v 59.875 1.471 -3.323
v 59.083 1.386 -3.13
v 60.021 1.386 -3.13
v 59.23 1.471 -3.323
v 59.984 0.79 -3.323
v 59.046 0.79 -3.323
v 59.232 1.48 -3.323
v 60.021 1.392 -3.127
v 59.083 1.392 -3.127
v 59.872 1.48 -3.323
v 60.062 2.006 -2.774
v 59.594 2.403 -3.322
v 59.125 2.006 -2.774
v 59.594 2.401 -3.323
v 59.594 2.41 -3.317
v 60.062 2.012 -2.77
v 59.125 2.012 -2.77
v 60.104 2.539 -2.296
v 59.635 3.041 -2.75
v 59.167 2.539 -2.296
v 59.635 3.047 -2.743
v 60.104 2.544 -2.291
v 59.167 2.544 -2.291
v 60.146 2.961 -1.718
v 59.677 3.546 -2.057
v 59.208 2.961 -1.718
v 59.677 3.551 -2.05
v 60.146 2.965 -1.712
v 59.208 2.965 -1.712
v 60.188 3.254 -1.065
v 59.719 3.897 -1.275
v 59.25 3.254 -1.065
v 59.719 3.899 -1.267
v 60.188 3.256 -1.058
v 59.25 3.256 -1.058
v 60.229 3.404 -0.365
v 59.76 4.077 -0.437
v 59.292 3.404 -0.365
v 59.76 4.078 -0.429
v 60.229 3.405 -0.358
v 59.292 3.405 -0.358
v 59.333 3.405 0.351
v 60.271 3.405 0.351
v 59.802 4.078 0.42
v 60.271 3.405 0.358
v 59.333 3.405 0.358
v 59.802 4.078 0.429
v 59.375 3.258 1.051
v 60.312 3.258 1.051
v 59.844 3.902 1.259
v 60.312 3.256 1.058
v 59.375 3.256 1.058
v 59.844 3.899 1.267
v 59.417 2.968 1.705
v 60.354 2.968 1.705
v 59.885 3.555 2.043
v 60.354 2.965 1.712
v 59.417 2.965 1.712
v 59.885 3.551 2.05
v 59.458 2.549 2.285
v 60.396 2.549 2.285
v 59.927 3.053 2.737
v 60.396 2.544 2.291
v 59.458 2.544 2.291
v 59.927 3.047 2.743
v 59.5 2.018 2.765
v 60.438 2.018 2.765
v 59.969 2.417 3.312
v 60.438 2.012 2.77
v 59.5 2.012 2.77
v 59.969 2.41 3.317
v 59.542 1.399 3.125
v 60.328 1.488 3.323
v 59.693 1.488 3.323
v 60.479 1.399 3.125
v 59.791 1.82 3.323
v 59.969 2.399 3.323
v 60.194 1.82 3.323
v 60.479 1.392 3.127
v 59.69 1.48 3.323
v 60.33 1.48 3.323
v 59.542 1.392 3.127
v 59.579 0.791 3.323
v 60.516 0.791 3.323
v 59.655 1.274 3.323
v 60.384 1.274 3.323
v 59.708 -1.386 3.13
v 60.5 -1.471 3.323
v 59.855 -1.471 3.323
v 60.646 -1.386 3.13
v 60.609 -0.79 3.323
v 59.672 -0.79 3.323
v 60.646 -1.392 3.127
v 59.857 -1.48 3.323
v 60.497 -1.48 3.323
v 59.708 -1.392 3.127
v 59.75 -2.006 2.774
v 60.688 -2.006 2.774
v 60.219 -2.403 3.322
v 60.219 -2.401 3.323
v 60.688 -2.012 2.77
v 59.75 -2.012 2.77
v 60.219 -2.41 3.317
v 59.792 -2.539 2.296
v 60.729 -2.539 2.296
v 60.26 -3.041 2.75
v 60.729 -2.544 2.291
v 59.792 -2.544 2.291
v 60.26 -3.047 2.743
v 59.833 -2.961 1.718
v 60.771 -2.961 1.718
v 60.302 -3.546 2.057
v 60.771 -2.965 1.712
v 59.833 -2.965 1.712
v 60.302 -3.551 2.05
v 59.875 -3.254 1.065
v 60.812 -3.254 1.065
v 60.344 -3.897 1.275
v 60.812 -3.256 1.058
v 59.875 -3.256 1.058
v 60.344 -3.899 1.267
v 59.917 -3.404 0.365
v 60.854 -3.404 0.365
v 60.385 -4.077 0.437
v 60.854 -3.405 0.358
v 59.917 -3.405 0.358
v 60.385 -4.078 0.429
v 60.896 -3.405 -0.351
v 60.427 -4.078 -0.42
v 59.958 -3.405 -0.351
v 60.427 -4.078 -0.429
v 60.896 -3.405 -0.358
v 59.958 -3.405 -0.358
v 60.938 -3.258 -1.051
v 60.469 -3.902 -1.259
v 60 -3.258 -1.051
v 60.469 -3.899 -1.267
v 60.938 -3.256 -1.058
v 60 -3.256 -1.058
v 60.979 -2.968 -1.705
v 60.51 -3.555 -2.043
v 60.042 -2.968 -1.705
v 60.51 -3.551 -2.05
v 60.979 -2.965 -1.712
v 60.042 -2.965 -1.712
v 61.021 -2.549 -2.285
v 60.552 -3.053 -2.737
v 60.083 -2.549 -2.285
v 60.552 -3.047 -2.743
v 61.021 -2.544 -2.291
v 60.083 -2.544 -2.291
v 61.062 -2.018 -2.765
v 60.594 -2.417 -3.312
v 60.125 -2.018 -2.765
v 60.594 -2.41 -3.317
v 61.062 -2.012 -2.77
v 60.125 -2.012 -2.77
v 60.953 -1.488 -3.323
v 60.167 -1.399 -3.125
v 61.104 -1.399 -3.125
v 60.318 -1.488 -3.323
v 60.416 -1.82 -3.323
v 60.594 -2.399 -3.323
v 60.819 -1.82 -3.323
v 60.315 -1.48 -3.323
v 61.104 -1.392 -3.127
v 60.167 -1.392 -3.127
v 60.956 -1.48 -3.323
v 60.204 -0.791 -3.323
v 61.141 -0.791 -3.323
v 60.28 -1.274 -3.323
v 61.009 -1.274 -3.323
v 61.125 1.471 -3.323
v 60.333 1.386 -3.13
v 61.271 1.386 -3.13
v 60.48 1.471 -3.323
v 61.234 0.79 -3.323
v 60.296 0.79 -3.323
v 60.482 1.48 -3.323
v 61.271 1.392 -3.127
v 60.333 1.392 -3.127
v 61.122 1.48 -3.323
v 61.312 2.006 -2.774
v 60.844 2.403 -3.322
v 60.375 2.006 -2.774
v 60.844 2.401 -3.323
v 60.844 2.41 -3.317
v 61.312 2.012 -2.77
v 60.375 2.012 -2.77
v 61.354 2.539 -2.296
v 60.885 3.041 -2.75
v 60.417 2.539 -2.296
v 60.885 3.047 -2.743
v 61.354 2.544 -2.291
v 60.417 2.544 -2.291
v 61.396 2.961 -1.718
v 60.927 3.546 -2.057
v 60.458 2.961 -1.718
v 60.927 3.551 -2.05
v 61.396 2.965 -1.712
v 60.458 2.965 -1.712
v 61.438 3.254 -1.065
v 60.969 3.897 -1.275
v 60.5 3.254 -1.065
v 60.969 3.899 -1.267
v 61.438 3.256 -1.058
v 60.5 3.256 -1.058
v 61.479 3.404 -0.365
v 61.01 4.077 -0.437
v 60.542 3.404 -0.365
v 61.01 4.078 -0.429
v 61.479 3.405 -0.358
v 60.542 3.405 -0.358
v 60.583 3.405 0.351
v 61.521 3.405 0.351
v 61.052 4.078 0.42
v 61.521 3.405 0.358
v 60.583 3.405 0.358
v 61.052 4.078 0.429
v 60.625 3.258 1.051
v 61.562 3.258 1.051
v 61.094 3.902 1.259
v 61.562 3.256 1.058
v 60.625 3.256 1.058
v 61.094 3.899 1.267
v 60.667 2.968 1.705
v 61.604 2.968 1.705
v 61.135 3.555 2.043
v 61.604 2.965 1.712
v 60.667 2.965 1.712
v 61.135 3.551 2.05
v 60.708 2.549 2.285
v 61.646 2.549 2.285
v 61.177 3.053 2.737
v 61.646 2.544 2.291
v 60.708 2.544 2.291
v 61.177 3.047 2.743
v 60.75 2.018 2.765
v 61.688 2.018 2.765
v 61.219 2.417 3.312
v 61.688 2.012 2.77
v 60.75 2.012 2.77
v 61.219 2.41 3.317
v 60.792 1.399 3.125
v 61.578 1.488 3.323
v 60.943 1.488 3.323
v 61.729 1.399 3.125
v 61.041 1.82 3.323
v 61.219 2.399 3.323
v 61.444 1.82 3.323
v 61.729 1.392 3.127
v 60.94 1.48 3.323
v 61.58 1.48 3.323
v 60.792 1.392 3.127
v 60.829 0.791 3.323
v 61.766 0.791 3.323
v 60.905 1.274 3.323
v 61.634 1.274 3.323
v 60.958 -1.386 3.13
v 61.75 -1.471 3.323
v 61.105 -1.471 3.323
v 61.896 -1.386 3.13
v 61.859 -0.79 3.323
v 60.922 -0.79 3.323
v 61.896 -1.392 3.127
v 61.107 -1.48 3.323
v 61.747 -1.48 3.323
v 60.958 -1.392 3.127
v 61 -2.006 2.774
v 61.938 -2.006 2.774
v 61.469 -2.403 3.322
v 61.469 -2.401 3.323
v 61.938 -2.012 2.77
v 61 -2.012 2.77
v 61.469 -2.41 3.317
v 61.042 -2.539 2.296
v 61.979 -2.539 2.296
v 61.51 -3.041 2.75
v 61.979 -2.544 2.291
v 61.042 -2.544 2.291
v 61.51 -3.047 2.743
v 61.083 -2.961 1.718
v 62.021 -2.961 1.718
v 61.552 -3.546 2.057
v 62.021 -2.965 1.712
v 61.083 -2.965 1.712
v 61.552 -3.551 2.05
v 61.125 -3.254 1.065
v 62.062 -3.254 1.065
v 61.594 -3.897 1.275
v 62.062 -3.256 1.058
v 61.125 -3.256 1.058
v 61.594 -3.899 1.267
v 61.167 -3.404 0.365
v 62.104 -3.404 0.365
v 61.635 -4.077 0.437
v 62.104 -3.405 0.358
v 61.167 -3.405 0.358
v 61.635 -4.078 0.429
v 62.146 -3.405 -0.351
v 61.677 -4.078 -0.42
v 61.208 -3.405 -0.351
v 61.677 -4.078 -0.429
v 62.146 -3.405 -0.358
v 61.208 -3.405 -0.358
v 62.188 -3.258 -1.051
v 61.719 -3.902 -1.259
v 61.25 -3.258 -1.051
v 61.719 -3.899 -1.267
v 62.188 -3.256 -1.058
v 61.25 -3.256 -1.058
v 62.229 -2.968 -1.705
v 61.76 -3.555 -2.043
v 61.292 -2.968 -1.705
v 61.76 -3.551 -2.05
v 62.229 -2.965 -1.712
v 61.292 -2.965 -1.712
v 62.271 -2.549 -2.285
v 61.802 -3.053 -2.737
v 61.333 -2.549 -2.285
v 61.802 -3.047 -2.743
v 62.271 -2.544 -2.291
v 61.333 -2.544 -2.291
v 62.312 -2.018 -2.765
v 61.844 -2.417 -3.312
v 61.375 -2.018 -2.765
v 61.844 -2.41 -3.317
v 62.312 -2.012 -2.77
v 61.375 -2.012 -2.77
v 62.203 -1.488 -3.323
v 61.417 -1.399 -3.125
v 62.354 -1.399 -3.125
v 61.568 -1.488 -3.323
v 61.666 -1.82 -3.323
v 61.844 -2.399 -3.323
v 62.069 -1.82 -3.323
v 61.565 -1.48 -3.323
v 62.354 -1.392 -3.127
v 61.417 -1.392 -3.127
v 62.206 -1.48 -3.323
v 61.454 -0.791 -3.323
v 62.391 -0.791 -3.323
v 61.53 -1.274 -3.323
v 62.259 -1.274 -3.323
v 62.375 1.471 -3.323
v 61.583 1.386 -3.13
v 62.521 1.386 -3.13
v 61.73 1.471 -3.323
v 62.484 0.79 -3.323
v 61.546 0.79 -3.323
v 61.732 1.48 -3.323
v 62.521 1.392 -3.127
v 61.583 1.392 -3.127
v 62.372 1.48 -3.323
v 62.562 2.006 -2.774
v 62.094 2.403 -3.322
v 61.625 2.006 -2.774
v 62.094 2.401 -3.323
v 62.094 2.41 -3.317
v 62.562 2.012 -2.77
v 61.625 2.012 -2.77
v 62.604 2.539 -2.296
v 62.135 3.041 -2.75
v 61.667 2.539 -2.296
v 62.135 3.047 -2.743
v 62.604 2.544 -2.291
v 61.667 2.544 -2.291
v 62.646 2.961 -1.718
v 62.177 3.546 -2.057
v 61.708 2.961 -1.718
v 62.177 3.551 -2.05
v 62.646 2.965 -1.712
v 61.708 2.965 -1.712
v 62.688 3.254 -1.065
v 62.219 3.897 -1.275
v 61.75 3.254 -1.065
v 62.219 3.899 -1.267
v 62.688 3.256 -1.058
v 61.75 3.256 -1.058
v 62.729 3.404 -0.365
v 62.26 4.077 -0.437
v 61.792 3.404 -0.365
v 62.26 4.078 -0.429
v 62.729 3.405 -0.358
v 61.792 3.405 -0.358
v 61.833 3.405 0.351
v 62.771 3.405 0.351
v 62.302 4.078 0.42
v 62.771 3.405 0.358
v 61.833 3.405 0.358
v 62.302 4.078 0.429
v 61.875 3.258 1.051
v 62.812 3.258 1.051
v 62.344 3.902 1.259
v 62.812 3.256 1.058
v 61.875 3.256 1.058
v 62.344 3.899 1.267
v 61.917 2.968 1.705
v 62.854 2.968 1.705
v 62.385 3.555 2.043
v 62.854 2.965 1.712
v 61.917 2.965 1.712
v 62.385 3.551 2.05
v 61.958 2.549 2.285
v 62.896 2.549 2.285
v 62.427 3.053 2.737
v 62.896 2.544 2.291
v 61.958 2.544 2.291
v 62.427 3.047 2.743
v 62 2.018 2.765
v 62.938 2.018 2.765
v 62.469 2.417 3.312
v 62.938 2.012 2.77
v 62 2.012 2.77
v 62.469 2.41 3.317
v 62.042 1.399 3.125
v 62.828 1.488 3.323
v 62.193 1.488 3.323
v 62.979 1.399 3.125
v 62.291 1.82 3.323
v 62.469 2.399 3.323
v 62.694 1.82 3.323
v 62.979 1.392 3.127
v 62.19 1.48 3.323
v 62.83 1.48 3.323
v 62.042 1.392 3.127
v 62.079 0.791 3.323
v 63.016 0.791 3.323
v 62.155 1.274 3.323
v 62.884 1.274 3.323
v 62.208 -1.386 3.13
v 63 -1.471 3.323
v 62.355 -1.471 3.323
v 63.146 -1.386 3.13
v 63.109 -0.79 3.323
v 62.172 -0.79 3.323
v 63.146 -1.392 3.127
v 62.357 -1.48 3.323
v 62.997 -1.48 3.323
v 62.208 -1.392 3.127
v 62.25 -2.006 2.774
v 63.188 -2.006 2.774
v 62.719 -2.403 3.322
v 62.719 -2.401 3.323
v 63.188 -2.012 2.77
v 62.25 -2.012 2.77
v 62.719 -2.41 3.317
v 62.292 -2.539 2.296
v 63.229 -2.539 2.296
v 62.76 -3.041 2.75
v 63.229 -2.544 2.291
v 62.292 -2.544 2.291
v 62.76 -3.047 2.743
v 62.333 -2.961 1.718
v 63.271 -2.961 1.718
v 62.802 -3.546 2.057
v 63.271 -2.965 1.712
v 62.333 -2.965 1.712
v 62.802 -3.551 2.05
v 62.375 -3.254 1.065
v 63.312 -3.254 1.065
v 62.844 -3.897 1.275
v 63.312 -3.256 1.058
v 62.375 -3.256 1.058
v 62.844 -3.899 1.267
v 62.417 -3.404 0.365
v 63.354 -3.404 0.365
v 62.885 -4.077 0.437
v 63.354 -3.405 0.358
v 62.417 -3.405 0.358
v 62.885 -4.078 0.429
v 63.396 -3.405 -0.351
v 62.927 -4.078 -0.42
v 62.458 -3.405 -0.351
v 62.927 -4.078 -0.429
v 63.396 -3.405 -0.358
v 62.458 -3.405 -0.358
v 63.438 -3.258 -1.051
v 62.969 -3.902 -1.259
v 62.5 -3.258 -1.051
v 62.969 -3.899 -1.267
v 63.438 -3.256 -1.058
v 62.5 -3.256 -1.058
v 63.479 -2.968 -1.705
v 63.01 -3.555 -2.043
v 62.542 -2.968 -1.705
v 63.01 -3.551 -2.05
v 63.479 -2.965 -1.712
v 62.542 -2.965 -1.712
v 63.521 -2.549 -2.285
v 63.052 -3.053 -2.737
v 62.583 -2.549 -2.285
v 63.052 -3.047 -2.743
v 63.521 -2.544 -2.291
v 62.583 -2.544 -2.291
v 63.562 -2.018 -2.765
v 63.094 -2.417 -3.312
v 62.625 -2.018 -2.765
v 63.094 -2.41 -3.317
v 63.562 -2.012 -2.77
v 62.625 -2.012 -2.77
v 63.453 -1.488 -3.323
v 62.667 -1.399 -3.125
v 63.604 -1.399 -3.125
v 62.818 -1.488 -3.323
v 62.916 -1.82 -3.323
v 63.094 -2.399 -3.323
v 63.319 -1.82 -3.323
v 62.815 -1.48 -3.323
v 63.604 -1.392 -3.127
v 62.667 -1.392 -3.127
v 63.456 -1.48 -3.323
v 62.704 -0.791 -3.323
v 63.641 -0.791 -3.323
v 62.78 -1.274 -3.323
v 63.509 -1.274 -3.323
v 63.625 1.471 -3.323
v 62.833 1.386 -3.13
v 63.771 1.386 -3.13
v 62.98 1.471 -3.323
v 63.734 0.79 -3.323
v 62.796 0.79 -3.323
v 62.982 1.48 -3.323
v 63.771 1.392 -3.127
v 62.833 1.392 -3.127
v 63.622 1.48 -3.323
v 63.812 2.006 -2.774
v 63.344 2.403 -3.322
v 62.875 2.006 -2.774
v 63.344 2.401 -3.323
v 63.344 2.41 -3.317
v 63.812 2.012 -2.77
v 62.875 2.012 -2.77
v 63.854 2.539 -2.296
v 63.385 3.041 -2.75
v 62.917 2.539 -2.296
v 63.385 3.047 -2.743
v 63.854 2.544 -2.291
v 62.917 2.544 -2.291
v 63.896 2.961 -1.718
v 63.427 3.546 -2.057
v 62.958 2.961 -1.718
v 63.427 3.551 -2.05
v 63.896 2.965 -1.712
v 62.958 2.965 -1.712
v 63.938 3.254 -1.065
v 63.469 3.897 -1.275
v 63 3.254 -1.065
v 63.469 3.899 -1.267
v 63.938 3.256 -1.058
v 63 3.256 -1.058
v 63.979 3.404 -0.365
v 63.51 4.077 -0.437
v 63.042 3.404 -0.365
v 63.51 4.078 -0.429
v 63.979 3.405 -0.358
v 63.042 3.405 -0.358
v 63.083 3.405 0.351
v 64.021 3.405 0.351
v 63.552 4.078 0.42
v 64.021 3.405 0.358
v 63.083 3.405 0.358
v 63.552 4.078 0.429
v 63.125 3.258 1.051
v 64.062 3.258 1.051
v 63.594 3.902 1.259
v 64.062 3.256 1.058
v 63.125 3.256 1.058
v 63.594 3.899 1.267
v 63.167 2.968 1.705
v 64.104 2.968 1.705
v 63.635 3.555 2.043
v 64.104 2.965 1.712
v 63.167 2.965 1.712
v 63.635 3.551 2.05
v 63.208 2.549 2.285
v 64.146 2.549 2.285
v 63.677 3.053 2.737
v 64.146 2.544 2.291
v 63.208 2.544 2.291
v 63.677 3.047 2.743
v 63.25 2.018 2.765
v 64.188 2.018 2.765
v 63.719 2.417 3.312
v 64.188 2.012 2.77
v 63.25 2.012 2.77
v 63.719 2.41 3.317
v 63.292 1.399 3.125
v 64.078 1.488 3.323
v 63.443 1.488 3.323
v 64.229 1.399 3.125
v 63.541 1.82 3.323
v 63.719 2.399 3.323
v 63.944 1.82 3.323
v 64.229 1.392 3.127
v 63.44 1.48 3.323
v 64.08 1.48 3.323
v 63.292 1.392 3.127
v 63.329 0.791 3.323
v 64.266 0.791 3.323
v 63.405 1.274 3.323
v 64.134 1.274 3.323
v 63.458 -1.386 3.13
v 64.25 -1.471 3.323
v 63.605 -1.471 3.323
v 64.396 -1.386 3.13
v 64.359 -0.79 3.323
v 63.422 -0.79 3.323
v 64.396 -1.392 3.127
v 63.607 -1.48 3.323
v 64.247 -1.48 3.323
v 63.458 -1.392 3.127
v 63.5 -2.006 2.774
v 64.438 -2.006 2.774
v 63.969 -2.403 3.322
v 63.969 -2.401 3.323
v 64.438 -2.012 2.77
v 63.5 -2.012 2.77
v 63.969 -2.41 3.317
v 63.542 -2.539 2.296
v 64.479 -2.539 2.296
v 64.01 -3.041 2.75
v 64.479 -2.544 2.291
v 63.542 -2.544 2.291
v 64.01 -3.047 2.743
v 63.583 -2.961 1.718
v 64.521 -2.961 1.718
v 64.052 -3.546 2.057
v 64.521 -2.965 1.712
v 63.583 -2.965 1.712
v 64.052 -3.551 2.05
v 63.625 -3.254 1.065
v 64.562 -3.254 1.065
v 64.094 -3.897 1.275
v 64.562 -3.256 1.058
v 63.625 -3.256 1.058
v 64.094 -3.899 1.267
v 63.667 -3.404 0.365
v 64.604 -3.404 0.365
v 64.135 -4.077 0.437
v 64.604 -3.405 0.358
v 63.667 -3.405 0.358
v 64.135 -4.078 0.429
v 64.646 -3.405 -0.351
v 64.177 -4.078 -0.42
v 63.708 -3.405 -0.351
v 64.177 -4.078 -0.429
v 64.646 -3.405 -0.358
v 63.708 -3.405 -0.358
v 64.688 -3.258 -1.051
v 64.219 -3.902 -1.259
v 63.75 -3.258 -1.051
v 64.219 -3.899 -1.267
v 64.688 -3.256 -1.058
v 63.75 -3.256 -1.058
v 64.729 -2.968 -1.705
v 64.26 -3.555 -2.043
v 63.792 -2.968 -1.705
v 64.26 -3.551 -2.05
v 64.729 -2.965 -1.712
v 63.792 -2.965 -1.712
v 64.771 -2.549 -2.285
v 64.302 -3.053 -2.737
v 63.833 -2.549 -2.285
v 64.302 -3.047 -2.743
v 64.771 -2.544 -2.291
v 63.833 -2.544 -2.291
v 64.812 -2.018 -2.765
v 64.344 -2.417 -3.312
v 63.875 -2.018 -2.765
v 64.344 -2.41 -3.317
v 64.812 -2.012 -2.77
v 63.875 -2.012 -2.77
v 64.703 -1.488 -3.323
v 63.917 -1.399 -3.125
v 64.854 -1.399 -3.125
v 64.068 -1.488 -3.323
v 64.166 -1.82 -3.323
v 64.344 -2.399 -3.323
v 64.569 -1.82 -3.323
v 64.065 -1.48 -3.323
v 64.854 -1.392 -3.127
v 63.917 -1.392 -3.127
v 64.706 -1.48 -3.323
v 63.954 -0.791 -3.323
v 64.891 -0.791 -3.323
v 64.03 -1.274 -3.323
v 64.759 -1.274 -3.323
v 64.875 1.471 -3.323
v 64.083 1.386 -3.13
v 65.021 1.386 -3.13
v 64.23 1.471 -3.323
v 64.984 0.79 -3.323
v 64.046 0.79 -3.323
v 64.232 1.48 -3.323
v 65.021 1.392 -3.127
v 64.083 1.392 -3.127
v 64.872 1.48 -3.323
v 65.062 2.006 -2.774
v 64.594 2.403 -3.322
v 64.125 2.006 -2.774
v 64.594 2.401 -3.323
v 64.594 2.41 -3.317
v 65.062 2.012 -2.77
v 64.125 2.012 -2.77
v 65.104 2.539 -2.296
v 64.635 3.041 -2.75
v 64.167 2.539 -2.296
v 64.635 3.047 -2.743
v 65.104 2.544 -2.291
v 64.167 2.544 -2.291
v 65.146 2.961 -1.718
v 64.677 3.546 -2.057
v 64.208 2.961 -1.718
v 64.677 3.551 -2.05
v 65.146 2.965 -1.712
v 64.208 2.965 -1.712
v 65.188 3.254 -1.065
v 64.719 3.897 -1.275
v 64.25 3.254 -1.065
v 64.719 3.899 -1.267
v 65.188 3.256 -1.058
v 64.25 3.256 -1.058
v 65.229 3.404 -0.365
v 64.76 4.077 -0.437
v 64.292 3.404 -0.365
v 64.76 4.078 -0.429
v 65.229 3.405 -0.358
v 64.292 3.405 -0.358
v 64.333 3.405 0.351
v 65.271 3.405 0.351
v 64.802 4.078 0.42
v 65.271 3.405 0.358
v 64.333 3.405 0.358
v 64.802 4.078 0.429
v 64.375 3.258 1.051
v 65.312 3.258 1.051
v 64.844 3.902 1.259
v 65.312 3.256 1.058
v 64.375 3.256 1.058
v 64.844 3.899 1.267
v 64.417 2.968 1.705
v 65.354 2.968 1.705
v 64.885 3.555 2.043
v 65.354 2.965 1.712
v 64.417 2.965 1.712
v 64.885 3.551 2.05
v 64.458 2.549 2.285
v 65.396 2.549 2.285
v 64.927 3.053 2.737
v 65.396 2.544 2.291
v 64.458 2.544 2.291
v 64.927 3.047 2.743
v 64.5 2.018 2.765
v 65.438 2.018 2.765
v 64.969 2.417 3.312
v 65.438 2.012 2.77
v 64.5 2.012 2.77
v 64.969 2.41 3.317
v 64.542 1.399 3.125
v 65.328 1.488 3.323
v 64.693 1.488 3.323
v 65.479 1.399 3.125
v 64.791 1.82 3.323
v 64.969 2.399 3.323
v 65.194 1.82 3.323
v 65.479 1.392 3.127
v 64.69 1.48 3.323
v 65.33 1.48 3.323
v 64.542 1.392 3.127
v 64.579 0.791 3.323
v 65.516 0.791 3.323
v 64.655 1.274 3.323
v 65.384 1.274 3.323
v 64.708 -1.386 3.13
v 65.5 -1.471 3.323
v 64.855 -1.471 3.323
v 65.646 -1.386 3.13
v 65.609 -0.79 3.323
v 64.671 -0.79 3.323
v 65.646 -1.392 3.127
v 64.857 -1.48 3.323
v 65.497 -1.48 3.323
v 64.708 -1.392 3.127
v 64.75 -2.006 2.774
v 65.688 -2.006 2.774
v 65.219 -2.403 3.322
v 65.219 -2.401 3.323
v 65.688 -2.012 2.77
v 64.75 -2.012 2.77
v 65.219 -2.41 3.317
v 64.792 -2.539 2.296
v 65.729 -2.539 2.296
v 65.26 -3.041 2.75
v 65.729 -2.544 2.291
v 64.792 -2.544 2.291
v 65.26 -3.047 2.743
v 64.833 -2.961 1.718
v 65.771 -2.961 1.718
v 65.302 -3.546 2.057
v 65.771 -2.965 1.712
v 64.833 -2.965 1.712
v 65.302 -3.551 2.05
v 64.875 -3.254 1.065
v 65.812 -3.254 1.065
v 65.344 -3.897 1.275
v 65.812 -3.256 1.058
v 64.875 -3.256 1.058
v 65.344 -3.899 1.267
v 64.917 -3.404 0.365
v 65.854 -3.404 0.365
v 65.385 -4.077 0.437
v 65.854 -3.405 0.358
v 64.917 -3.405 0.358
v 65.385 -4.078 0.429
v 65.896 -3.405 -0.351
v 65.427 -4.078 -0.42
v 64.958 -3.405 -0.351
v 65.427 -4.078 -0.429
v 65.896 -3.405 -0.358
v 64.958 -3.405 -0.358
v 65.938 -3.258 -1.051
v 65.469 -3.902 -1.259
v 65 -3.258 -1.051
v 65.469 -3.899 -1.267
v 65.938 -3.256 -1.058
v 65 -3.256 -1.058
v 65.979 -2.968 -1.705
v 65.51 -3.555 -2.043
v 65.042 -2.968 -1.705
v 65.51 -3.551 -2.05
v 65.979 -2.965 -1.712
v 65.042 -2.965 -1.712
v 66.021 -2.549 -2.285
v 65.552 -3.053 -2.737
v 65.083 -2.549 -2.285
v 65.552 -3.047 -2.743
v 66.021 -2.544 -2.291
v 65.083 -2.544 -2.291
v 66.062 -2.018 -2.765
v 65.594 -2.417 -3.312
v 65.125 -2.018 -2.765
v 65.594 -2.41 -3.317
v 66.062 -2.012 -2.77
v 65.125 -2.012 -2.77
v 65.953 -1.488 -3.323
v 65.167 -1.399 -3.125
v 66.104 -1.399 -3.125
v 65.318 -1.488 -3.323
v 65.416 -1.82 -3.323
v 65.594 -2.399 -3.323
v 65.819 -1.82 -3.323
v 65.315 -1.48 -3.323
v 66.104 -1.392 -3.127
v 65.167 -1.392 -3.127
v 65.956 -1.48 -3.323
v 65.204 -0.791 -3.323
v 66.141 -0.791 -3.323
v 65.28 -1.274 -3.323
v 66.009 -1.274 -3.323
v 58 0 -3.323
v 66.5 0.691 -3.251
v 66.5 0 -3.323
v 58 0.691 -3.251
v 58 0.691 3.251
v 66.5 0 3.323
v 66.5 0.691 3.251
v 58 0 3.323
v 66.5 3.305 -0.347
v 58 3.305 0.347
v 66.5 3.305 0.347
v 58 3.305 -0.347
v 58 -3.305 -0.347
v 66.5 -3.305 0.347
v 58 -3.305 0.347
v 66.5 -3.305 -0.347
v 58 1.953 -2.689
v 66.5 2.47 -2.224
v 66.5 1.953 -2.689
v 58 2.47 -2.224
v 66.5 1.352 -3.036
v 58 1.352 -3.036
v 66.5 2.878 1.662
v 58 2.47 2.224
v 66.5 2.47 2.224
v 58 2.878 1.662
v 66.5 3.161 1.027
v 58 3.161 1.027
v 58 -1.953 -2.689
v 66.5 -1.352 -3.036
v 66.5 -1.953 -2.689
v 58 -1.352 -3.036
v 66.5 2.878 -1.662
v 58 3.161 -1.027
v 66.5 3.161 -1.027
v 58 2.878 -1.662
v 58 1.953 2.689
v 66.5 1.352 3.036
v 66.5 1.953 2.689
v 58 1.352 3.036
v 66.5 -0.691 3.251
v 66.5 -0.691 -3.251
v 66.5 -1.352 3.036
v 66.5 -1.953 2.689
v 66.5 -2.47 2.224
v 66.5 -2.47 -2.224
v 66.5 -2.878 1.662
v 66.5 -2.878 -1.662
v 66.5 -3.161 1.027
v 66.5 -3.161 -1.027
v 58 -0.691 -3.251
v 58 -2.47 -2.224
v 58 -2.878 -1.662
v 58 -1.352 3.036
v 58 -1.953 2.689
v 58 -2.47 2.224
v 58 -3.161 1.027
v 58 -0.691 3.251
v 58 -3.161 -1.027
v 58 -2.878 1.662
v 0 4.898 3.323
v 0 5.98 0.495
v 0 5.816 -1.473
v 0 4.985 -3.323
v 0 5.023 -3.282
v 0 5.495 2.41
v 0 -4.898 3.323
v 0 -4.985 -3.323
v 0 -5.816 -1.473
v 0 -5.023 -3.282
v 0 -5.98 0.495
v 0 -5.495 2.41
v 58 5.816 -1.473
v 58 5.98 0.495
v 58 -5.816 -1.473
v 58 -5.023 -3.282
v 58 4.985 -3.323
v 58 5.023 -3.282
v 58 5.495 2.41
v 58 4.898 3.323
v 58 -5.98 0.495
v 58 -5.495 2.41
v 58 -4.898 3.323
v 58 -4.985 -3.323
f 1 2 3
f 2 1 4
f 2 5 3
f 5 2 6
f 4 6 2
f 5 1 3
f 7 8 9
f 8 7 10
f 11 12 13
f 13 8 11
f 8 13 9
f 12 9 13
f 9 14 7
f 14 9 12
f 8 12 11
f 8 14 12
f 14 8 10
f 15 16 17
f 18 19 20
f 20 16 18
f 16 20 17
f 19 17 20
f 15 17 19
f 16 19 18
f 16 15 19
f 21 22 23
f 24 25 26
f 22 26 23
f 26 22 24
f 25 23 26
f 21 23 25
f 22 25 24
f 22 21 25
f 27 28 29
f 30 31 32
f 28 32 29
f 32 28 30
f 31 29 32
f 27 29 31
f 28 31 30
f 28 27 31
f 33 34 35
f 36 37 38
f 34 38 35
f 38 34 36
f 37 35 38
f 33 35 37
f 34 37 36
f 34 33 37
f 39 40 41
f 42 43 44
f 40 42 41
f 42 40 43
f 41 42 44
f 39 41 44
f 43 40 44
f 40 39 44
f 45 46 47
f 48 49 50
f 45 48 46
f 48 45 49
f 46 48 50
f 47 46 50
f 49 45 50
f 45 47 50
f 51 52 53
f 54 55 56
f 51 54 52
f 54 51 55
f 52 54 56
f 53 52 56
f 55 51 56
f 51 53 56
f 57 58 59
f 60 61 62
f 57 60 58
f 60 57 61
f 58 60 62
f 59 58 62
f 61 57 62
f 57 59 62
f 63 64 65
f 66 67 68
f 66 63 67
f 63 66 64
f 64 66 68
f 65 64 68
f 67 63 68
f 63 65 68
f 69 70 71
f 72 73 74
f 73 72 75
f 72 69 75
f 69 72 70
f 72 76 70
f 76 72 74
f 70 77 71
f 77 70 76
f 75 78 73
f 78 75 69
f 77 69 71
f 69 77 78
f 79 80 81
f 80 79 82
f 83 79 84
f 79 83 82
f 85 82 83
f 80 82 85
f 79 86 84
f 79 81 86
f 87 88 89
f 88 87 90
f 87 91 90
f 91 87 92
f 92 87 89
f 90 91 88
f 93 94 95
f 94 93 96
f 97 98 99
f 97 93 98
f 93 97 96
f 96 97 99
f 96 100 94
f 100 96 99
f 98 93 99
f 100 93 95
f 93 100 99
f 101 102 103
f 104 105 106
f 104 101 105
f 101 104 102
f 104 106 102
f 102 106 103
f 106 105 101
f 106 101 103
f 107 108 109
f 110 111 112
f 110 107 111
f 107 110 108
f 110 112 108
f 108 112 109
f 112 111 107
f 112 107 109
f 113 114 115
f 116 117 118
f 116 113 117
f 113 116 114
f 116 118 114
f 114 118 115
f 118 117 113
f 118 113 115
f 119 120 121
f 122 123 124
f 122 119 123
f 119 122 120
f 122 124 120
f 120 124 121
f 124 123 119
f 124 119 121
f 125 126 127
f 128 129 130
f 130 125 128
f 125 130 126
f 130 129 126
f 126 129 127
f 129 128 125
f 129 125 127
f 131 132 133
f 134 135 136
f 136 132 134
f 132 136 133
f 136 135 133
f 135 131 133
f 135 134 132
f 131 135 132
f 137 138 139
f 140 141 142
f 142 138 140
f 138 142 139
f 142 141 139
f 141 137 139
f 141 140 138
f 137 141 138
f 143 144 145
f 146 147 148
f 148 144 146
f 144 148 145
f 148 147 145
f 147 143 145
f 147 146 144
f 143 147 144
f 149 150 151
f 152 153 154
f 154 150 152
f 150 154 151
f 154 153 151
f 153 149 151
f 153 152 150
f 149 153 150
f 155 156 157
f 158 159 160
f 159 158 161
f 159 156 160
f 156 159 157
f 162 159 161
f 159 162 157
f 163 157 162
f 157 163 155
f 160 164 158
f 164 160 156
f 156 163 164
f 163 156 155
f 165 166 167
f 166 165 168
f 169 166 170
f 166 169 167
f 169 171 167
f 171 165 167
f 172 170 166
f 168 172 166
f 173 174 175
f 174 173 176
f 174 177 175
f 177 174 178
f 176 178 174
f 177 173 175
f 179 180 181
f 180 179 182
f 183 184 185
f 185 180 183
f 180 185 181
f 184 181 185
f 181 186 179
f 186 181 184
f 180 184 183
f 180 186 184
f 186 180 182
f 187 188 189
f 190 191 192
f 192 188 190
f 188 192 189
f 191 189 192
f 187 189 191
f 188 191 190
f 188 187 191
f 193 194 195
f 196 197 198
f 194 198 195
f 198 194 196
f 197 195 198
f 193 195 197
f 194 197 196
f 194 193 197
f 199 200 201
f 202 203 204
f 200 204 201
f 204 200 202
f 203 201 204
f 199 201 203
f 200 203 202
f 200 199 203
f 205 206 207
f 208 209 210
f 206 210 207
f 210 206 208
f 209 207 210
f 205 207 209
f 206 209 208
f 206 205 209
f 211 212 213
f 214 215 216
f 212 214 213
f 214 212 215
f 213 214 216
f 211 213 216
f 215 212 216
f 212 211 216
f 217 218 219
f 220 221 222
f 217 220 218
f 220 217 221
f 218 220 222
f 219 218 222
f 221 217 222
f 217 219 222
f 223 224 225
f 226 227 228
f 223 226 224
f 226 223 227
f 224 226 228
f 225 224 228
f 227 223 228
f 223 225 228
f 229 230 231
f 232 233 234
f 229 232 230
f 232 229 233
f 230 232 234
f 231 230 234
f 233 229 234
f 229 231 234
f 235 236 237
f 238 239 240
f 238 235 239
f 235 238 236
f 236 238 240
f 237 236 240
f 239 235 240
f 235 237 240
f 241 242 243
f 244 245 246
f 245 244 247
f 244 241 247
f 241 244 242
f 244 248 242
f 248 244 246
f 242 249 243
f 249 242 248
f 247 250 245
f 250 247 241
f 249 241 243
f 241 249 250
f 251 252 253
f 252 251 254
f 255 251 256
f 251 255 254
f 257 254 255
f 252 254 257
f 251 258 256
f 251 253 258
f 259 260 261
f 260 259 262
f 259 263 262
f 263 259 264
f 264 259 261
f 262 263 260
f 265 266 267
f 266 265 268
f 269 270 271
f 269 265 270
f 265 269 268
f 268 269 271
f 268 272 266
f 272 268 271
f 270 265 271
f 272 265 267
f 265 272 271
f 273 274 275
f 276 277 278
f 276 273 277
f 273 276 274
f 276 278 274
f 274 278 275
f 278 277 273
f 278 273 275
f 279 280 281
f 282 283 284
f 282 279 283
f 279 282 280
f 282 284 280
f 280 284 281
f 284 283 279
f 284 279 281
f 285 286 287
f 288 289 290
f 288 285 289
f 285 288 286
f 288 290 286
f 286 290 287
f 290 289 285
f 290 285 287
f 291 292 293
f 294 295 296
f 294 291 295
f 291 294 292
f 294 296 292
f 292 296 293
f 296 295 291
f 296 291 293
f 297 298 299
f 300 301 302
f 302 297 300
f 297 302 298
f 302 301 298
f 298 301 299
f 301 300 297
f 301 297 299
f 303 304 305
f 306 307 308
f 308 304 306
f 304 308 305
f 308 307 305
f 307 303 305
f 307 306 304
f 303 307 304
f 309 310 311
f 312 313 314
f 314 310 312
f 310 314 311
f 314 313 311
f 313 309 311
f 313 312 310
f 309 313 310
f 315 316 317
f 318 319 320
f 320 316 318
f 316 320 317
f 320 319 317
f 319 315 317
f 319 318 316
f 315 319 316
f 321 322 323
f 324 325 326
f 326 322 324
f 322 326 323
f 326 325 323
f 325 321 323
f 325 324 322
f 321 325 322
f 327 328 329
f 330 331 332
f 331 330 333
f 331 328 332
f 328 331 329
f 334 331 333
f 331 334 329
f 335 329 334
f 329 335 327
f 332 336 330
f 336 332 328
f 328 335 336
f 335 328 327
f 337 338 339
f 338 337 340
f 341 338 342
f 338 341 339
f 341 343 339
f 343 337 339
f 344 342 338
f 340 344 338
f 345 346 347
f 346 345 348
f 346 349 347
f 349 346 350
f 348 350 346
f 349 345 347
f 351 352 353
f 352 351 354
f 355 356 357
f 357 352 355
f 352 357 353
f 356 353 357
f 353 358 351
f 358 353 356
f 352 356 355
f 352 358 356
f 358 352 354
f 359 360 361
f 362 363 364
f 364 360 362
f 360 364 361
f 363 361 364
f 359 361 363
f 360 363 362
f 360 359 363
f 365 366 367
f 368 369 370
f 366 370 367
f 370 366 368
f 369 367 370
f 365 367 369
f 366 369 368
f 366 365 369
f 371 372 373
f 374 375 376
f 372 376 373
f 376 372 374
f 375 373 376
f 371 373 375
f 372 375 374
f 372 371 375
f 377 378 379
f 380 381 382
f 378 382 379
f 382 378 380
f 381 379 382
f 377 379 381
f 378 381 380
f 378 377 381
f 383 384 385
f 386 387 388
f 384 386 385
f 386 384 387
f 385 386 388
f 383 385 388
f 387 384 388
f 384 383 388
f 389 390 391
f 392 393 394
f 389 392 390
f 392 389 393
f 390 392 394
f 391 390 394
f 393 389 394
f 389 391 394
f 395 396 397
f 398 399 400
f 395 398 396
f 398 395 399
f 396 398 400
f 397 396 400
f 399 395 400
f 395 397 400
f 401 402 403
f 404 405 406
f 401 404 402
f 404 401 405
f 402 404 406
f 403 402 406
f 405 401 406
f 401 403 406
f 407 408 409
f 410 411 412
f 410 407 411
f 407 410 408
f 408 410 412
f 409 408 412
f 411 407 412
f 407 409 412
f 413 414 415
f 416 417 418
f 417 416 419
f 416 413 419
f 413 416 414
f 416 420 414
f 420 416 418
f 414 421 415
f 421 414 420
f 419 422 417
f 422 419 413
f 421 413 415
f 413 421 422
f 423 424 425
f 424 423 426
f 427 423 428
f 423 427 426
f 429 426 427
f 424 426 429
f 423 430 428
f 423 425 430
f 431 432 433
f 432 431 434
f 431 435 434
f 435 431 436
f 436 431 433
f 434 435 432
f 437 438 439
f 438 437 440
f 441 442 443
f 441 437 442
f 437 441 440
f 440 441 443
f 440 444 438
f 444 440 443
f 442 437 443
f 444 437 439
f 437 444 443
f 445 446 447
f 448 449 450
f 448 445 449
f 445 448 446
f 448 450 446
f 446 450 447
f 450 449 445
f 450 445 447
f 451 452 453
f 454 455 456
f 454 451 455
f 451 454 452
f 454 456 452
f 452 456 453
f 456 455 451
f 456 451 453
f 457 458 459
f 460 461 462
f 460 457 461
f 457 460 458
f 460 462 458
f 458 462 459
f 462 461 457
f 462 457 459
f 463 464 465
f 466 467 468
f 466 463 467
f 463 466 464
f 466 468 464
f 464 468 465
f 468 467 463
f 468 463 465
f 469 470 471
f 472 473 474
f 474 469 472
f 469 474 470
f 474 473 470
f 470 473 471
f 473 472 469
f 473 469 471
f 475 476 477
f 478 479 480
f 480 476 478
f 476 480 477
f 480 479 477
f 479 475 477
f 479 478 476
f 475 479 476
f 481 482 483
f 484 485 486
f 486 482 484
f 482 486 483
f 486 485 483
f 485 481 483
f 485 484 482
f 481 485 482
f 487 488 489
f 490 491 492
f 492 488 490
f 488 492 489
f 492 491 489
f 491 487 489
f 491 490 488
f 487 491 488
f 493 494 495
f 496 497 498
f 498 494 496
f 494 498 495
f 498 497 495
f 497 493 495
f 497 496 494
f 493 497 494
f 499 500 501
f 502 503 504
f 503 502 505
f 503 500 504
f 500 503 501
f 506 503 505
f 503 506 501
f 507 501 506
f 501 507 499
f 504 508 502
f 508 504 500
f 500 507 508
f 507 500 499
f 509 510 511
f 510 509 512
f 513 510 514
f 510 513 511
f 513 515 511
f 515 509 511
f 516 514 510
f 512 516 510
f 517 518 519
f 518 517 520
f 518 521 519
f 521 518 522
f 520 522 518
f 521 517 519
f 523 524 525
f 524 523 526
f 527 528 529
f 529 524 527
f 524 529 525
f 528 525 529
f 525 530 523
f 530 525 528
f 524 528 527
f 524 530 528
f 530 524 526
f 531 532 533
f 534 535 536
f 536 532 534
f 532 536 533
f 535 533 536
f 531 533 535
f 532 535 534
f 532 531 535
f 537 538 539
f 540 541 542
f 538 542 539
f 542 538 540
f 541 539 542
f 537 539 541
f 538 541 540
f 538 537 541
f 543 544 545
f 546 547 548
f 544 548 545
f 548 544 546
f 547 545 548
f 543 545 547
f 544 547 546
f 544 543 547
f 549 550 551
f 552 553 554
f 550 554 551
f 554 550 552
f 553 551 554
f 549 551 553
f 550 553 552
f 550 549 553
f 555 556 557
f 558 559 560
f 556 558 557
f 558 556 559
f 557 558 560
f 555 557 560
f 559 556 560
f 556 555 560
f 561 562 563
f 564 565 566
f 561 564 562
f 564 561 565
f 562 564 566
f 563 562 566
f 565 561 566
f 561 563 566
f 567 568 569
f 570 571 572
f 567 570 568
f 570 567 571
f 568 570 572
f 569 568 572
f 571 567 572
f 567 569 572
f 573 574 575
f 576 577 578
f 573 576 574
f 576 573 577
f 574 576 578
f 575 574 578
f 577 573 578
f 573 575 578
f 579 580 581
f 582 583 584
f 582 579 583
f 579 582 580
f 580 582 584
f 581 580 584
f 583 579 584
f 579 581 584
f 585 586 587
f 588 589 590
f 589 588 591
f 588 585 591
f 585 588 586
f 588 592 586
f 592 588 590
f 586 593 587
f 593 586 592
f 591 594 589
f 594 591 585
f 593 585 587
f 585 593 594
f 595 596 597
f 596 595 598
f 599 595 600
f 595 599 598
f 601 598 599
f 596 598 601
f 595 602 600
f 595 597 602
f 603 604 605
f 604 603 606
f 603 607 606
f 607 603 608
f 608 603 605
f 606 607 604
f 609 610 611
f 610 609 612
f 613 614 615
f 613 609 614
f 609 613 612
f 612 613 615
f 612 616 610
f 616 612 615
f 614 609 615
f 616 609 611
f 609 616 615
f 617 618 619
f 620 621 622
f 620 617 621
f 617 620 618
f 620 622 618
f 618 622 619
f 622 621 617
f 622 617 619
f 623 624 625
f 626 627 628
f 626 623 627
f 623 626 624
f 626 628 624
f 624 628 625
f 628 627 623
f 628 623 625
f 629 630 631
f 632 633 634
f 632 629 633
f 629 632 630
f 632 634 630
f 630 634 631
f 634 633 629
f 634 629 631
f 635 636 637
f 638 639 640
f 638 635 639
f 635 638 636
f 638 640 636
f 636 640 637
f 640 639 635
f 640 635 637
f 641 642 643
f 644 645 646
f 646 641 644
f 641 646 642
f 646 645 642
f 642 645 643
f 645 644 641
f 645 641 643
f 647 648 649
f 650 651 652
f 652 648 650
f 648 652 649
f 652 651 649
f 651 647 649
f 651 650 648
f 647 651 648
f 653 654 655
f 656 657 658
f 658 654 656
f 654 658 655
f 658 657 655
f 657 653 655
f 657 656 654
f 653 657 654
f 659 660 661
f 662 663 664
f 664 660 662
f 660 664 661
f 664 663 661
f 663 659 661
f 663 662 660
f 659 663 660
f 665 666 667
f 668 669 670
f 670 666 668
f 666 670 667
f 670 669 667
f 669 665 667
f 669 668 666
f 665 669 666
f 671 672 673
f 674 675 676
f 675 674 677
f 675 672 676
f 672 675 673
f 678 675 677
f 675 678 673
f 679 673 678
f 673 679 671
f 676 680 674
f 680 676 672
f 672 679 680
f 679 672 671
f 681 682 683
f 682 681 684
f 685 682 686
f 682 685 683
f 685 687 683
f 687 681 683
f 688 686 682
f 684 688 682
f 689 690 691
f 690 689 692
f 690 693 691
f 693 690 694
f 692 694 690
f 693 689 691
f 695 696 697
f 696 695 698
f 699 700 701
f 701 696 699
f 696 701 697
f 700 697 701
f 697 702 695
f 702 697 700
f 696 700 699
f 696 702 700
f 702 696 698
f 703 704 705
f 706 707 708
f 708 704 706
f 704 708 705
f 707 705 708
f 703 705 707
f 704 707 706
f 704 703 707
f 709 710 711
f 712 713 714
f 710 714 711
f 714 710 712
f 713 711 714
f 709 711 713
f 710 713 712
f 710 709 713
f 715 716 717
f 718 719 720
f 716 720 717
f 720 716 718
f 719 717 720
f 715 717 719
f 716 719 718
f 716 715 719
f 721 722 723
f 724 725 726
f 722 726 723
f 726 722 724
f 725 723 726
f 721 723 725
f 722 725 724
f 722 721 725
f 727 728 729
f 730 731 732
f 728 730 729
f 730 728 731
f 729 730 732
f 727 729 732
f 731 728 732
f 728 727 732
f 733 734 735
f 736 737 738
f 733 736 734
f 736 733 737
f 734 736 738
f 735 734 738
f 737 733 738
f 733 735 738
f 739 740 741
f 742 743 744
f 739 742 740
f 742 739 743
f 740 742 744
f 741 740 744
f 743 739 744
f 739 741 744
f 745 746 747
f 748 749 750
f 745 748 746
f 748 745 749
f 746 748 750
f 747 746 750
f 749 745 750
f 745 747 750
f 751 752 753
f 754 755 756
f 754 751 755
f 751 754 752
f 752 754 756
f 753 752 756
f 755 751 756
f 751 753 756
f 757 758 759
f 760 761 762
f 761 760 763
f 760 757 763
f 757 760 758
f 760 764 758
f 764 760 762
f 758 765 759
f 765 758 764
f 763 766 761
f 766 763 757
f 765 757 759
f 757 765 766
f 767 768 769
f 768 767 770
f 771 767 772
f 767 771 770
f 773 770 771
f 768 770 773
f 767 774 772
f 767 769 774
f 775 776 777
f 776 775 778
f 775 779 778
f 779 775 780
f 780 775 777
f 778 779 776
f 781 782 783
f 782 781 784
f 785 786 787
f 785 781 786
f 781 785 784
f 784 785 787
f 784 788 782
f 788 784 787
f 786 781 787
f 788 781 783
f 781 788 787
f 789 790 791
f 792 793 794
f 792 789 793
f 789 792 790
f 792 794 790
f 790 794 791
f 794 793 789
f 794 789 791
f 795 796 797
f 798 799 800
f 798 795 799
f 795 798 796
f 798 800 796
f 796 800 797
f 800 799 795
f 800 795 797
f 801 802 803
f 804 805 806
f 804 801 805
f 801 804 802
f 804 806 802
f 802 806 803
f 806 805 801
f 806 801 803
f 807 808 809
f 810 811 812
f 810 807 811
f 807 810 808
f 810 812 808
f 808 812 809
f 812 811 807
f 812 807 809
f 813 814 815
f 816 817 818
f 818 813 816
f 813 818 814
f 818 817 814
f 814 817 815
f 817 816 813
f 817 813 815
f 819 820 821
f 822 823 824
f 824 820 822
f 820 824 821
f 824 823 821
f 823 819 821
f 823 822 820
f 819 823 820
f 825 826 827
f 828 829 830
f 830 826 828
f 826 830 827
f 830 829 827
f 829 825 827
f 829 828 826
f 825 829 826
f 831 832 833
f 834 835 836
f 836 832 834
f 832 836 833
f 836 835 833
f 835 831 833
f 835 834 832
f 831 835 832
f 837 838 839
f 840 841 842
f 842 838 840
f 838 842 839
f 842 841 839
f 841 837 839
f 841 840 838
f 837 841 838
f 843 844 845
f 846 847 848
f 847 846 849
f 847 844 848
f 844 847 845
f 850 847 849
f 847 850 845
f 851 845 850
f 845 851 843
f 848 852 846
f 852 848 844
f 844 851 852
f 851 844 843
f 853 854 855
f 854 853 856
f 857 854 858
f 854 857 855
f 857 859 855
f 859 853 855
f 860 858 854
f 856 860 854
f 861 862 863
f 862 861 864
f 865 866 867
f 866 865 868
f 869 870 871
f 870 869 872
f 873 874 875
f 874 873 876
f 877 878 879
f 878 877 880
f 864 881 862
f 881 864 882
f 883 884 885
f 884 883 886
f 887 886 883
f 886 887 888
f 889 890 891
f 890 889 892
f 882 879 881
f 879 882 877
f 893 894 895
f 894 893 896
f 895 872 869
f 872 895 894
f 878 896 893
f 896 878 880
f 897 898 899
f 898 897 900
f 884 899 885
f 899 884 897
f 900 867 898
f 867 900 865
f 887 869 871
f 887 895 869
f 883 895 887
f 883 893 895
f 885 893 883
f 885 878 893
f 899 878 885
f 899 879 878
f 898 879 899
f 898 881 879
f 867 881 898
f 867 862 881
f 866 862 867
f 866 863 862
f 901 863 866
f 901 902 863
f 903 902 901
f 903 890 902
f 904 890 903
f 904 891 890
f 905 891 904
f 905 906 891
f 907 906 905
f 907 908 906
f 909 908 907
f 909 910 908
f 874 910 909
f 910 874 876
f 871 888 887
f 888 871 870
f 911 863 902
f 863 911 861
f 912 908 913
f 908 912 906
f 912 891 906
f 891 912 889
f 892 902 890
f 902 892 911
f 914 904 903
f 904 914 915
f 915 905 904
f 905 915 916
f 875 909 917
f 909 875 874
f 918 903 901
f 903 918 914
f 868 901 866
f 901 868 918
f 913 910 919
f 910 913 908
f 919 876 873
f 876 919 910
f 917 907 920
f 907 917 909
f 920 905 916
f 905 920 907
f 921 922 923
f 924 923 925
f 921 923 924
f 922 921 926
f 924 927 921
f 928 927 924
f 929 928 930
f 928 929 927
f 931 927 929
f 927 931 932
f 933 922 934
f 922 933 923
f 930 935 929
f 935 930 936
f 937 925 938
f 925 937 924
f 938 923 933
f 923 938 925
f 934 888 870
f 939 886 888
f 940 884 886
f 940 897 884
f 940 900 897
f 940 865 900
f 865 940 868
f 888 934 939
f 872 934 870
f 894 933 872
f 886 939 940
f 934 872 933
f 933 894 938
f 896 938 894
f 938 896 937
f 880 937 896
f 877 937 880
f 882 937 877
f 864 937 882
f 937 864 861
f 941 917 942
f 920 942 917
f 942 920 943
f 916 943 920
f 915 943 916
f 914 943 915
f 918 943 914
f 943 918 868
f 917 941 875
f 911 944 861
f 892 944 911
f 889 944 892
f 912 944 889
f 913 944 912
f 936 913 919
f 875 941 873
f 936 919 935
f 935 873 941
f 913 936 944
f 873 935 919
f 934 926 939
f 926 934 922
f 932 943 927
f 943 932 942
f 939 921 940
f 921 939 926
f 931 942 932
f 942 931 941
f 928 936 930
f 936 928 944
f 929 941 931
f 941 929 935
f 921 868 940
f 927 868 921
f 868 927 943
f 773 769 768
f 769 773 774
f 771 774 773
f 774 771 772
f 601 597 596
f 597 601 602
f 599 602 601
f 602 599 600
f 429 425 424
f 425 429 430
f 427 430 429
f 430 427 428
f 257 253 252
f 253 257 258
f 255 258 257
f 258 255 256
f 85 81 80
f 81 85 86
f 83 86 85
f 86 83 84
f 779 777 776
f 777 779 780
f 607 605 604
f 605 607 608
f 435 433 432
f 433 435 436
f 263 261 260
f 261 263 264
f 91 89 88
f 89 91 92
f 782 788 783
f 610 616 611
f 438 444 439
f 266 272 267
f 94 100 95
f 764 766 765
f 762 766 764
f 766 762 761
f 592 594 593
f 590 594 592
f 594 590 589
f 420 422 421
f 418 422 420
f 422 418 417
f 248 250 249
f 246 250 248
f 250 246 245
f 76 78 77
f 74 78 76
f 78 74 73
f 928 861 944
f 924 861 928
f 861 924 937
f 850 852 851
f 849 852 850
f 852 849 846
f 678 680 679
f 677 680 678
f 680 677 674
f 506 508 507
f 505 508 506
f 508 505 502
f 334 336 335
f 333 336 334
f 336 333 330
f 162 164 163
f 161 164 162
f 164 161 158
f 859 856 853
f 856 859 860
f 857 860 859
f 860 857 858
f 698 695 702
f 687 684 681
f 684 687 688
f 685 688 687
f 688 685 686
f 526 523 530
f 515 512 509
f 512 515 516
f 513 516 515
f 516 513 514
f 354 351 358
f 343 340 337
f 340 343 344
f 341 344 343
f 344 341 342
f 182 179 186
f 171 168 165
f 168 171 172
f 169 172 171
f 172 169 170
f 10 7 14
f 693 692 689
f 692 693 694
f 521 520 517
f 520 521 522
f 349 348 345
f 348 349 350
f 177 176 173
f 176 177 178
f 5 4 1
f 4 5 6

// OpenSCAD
use <lib/ISOThreadCust.scad>

waxStamp_screw_shaft = 12;
waxStampHolderLength = 60;
waxStamp_metric_screw_dia = 8;
waxStamp_metric_shaft_length = 6.5;

module wax_stamp_screw(
                screwDia = 8,
                shaftLength = 6.5)
{
    thread_out(screwDia,shaftLength);
    thread_out_centre(screwDia,shaftLength);
}

module wax_stamp_handle(
                screwShaft = 12,
                holderLength = 60,
                screwDia = 8,
                shaftLength = 6.5)
{
    flatPrintRadius = (screwDia/2) - (5*(cos(30)*get_coarse_pitch(screwDia))/8);
    intersection()
    {
        rotate([0,90,0])
        union()
        {
            translate([0,0,holderLength-1])
                wax_stamp_screw(screwDia, shaftLength+1);
            thread_out_centre(screwDia,holderLength);
            cylinder(d=screwShaft, holderLength-2);
        }        
        translate([(holderLength+shaftLength)/2,0,0])
            cube([(holderLength+shaftLength), screwShaft, flatPrintRadius*2], center=true);
    }
}

wax_stamp_handle(
        waxStamp_screw_shaft,
        waxStampHolderLength,
        waxStamp_metric_screw_dia,
        waxStamp_metric_shaft_length
    );
